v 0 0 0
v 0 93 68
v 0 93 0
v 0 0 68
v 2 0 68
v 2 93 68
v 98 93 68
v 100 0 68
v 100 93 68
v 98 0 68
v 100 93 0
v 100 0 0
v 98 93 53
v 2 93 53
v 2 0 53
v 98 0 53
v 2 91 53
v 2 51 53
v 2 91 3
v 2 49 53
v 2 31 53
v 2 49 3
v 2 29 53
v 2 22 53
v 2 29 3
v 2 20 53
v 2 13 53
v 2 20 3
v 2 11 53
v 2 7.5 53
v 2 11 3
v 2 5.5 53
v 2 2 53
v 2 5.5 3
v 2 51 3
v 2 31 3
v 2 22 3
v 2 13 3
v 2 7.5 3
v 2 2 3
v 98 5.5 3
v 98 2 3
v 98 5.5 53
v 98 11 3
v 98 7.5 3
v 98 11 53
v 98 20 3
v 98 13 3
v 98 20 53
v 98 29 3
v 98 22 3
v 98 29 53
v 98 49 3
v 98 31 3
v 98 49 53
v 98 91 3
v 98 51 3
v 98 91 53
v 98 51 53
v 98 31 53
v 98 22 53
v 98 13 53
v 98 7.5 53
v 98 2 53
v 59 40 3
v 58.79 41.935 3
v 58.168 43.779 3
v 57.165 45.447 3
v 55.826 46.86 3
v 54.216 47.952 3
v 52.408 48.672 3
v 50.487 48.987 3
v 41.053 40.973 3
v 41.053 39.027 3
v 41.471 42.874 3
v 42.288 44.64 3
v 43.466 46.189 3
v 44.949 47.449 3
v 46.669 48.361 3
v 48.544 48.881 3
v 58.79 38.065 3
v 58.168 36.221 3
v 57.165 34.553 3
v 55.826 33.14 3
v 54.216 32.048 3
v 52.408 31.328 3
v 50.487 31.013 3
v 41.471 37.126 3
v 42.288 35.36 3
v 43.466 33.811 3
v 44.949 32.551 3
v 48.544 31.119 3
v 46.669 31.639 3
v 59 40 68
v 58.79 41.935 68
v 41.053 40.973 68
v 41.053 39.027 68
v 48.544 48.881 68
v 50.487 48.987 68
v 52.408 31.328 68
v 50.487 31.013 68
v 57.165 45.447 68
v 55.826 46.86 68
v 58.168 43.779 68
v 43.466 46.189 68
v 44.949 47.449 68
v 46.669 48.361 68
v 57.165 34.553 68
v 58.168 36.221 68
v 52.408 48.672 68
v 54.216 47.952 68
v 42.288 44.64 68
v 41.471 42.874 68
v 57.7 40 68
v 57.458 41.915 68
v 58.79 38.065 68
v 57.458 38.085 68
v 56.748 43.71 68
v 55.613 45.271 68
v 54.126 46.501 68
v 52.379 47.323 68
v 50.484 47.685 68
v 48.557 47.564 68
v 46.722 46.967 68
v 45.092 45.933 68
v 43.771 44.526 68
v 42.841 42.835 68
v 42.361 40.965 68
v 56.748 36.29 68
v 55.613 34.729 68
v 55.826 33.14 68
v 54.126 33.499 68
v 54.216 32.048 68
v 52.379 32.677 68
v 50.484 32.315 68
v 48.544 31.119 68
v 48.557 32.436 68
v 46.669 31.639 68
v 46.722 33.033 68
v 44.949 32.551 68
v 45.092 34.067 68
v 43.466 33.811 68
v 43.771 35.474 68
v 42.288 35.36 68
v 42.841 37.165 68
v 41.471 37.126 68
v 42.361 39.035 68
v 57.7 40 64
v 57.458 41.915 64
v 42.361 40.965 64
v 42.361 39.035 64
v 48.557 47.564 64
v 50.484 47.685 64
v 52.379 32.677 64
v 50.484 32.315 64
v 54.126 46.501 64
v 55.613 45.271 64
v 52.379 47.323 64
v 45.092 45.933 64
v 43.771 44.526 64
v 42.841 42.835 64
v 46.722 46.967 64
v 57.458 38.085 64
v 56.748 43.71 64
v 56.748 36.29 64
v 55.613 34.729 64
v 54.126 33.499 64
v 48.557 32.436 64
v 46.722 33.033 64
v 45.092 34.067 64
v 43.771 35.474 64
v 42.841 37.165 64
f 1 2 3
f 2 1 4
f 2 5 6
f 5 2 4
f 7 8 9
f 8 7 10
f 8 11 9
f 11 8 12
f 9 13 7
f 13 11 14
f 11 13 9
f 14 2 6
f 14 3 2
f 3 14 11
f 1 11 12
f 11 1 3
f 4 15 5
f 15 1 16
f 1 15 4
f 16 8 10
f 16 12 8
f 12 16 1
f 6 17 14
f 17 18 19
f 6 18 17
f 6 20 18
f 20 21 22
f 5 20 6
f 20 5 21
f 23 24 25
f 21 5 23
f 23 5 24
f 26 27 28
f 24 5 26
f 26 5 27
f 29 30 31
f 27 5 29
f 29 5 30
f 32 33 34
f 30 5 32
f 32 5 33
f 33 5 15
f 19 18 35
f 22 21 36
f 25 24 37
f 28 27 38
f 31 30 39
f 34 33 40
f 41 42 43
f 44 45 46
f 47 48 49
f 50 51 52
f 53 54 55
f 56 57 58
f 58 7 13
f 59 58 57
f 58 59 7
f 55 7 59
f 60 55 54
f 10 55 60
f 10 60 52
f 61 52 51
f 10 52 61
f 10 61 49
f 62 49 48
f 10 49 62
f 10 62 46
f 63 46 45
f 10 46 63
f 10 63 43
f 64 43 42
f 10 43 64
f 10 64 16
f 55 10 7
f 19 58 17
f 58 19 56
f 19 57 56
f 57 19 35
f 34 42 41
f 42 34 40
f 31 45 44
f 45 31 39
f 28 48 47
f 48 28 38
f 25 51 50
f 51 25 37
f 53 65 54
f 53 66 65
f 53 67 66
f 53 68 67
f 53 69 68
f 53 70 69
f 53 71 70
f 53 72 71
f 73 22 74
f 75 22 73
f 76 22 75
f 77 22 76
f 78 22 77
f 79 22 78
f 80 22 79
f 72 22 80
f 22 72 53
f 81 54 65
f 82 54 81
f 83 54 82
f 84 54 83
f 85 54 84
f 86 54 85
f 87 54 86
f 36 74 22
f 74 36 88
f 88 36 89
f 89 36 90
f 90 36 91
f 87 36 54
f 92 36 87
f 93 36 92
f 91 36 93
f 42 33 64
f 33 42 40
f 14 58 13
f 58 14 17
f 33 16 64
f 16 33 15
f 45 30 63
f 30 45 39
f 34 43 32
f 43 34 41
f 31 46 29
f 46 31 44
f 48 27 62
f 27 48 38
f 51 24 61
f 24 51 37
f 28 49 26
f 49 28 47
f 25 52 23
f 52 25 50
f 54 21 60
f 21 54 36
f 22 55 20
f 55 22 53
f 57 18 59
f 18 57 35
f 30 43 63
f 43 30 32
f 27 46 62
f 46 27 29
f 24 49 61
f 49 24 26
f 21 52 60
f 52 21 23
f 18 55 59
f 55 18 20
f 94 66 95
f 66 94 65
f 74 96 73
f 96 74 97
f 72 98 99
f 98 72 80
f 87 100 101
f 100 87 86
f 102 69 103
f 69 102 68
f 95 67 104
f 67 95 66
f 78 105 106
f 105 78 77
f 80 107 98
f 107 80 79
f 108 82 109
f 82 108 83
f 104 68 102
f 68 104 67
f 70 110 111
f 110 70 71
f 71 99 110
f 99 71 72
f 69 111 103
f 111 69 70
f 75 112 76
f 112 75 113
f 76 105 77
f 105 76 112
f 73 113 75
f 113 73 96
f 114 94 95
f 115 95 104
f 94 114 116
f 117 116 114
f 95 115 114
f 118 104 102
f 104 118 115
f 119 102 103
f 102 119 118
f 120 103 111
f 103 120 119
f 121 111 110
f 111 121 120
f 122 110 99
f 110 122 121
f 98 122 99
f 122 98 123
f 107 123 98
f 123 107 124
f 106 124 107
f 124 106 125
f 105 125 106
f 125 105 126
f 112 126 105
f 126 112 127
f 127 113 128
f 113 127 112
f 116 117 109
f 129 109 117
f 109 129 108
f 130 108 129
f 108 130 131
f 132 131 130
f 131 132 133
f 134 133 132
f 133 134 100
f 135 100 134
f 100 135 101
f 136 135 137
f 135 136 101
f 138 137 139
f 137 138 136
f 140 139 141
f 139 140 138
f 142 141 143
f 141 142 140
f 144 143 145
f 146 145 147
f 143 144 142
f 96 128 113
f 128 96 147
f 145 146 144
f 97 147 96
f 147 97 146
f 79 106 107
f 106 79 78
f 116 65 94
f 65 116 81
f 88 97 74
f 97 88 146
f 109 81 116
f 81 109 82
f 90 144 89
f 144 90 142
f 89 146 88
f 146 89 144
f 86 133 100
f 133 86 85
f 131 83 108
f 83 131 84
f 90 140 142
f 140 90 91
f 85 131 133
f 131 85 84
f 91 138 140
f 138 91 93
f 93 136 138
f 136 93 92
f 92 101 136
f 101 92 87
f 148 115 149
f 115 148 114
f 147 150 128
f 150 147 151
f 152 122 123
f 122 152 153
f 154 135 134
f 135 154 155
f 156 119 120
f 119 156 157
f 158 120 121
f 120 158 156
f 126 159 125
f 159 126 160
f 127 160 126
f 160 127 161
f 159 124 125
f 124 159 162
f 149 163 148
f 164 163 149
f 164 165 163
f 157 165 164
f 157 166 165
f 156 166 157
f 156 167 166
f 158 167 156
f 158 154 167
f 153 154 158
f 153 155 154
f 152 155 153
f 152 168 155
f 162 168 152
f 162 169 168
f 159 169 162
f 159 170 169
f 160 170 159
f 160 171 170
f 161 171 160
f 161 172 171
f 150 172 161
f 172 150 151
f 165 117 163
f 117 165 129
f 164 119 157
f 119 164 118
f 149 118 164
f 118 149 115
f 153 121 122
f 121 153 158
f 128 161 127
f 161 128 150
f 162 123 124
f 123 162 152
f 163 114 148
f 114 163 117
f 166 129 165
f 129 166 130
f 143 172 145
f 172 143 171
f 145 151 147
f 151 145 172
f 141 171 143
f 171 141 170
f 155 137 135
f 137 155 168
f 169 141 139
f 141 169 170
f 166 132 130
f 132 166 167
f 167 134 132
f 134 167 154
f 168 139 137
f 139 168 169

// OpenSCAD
wallThickness = 2;
floorThickness = 3;
magnetBaseOuterDiameter = 18;
magnetBaseInnerDiameter = 15.4;
magnetHeight = 4.0;


length = 96 + wallThickness * 2;

stack1Width = 3.5;
stack2Width = 3.5;
stack3Width = 7;
stack4Width = 7;
stack5Width = 40;
width = stack1Width + stack2Width + stack3Width + stack4Width + stack5Width + magnetBaseOuterDiameter + wallThickness * 7;
height = 65 + 3;
wallHeightOffset = 15;

//Based on magnet size:


difference(){
    cube([length, width, height]);
    translate([wallThickness, wallThickness, floorThickness])
        cube([length - wallThickness * 2,width - wallThickness * 2, height - floorThickness]);
    translate([wallThickness, 0, height - wallHeightOffset])
        cube([length - wallThickness * 2, width,wallHeightOffset]);
}

difference() {
    union() {
        difference() {
            union() {
            
                
                
                translate([0, wallThickness + stack1Width, 0])
                    cube([length, wallThickness, height]);

                translate([0, wallThickness * 2 + stack1Width + stack2Width, 0])
                    cube([length, wallThickness, height]);
                
                translate([0, wallThickness * 3 + stack1Width + stack2Width + stack3Width, 0])
                    cube([length, wallThickness, height]);
                
                translate([0, wallThickness * 4 + stack1Width + stack2Width + stack3Width + stack4Width, 0])
                    cube([length, wallThickness, height]);
                
                translate([0, wallThickness * 5 + stack1Width + stack2Width + stack3Width + stack4Width + magnetBaseOuterDiameter, 0])
                    cube([length, wallThickness, height]);

            }
            translate([wallThickness, 0, height - wallHeightOffset])
                cube([length - wallThickness * 2, width,wallHeightOffset]);
        }
        translate([length/2, wallThickness * 5 + stack1Width + stack2Width + stack3Width + stack4Width + magnetBaseOuterDiameter/2, 0])
                    cylinder(height, d=magnetBaseOuterDiameter);
    };
    translate([length/2, wallThickness * 5 + stack1Width + stack2Width + stack3Width + stack4Width + magnetBaseOuterDiameter/2, height - magnetHeight])
        cylinder(magnetHeight, d=magnetBaseInnerDiameter);

};
